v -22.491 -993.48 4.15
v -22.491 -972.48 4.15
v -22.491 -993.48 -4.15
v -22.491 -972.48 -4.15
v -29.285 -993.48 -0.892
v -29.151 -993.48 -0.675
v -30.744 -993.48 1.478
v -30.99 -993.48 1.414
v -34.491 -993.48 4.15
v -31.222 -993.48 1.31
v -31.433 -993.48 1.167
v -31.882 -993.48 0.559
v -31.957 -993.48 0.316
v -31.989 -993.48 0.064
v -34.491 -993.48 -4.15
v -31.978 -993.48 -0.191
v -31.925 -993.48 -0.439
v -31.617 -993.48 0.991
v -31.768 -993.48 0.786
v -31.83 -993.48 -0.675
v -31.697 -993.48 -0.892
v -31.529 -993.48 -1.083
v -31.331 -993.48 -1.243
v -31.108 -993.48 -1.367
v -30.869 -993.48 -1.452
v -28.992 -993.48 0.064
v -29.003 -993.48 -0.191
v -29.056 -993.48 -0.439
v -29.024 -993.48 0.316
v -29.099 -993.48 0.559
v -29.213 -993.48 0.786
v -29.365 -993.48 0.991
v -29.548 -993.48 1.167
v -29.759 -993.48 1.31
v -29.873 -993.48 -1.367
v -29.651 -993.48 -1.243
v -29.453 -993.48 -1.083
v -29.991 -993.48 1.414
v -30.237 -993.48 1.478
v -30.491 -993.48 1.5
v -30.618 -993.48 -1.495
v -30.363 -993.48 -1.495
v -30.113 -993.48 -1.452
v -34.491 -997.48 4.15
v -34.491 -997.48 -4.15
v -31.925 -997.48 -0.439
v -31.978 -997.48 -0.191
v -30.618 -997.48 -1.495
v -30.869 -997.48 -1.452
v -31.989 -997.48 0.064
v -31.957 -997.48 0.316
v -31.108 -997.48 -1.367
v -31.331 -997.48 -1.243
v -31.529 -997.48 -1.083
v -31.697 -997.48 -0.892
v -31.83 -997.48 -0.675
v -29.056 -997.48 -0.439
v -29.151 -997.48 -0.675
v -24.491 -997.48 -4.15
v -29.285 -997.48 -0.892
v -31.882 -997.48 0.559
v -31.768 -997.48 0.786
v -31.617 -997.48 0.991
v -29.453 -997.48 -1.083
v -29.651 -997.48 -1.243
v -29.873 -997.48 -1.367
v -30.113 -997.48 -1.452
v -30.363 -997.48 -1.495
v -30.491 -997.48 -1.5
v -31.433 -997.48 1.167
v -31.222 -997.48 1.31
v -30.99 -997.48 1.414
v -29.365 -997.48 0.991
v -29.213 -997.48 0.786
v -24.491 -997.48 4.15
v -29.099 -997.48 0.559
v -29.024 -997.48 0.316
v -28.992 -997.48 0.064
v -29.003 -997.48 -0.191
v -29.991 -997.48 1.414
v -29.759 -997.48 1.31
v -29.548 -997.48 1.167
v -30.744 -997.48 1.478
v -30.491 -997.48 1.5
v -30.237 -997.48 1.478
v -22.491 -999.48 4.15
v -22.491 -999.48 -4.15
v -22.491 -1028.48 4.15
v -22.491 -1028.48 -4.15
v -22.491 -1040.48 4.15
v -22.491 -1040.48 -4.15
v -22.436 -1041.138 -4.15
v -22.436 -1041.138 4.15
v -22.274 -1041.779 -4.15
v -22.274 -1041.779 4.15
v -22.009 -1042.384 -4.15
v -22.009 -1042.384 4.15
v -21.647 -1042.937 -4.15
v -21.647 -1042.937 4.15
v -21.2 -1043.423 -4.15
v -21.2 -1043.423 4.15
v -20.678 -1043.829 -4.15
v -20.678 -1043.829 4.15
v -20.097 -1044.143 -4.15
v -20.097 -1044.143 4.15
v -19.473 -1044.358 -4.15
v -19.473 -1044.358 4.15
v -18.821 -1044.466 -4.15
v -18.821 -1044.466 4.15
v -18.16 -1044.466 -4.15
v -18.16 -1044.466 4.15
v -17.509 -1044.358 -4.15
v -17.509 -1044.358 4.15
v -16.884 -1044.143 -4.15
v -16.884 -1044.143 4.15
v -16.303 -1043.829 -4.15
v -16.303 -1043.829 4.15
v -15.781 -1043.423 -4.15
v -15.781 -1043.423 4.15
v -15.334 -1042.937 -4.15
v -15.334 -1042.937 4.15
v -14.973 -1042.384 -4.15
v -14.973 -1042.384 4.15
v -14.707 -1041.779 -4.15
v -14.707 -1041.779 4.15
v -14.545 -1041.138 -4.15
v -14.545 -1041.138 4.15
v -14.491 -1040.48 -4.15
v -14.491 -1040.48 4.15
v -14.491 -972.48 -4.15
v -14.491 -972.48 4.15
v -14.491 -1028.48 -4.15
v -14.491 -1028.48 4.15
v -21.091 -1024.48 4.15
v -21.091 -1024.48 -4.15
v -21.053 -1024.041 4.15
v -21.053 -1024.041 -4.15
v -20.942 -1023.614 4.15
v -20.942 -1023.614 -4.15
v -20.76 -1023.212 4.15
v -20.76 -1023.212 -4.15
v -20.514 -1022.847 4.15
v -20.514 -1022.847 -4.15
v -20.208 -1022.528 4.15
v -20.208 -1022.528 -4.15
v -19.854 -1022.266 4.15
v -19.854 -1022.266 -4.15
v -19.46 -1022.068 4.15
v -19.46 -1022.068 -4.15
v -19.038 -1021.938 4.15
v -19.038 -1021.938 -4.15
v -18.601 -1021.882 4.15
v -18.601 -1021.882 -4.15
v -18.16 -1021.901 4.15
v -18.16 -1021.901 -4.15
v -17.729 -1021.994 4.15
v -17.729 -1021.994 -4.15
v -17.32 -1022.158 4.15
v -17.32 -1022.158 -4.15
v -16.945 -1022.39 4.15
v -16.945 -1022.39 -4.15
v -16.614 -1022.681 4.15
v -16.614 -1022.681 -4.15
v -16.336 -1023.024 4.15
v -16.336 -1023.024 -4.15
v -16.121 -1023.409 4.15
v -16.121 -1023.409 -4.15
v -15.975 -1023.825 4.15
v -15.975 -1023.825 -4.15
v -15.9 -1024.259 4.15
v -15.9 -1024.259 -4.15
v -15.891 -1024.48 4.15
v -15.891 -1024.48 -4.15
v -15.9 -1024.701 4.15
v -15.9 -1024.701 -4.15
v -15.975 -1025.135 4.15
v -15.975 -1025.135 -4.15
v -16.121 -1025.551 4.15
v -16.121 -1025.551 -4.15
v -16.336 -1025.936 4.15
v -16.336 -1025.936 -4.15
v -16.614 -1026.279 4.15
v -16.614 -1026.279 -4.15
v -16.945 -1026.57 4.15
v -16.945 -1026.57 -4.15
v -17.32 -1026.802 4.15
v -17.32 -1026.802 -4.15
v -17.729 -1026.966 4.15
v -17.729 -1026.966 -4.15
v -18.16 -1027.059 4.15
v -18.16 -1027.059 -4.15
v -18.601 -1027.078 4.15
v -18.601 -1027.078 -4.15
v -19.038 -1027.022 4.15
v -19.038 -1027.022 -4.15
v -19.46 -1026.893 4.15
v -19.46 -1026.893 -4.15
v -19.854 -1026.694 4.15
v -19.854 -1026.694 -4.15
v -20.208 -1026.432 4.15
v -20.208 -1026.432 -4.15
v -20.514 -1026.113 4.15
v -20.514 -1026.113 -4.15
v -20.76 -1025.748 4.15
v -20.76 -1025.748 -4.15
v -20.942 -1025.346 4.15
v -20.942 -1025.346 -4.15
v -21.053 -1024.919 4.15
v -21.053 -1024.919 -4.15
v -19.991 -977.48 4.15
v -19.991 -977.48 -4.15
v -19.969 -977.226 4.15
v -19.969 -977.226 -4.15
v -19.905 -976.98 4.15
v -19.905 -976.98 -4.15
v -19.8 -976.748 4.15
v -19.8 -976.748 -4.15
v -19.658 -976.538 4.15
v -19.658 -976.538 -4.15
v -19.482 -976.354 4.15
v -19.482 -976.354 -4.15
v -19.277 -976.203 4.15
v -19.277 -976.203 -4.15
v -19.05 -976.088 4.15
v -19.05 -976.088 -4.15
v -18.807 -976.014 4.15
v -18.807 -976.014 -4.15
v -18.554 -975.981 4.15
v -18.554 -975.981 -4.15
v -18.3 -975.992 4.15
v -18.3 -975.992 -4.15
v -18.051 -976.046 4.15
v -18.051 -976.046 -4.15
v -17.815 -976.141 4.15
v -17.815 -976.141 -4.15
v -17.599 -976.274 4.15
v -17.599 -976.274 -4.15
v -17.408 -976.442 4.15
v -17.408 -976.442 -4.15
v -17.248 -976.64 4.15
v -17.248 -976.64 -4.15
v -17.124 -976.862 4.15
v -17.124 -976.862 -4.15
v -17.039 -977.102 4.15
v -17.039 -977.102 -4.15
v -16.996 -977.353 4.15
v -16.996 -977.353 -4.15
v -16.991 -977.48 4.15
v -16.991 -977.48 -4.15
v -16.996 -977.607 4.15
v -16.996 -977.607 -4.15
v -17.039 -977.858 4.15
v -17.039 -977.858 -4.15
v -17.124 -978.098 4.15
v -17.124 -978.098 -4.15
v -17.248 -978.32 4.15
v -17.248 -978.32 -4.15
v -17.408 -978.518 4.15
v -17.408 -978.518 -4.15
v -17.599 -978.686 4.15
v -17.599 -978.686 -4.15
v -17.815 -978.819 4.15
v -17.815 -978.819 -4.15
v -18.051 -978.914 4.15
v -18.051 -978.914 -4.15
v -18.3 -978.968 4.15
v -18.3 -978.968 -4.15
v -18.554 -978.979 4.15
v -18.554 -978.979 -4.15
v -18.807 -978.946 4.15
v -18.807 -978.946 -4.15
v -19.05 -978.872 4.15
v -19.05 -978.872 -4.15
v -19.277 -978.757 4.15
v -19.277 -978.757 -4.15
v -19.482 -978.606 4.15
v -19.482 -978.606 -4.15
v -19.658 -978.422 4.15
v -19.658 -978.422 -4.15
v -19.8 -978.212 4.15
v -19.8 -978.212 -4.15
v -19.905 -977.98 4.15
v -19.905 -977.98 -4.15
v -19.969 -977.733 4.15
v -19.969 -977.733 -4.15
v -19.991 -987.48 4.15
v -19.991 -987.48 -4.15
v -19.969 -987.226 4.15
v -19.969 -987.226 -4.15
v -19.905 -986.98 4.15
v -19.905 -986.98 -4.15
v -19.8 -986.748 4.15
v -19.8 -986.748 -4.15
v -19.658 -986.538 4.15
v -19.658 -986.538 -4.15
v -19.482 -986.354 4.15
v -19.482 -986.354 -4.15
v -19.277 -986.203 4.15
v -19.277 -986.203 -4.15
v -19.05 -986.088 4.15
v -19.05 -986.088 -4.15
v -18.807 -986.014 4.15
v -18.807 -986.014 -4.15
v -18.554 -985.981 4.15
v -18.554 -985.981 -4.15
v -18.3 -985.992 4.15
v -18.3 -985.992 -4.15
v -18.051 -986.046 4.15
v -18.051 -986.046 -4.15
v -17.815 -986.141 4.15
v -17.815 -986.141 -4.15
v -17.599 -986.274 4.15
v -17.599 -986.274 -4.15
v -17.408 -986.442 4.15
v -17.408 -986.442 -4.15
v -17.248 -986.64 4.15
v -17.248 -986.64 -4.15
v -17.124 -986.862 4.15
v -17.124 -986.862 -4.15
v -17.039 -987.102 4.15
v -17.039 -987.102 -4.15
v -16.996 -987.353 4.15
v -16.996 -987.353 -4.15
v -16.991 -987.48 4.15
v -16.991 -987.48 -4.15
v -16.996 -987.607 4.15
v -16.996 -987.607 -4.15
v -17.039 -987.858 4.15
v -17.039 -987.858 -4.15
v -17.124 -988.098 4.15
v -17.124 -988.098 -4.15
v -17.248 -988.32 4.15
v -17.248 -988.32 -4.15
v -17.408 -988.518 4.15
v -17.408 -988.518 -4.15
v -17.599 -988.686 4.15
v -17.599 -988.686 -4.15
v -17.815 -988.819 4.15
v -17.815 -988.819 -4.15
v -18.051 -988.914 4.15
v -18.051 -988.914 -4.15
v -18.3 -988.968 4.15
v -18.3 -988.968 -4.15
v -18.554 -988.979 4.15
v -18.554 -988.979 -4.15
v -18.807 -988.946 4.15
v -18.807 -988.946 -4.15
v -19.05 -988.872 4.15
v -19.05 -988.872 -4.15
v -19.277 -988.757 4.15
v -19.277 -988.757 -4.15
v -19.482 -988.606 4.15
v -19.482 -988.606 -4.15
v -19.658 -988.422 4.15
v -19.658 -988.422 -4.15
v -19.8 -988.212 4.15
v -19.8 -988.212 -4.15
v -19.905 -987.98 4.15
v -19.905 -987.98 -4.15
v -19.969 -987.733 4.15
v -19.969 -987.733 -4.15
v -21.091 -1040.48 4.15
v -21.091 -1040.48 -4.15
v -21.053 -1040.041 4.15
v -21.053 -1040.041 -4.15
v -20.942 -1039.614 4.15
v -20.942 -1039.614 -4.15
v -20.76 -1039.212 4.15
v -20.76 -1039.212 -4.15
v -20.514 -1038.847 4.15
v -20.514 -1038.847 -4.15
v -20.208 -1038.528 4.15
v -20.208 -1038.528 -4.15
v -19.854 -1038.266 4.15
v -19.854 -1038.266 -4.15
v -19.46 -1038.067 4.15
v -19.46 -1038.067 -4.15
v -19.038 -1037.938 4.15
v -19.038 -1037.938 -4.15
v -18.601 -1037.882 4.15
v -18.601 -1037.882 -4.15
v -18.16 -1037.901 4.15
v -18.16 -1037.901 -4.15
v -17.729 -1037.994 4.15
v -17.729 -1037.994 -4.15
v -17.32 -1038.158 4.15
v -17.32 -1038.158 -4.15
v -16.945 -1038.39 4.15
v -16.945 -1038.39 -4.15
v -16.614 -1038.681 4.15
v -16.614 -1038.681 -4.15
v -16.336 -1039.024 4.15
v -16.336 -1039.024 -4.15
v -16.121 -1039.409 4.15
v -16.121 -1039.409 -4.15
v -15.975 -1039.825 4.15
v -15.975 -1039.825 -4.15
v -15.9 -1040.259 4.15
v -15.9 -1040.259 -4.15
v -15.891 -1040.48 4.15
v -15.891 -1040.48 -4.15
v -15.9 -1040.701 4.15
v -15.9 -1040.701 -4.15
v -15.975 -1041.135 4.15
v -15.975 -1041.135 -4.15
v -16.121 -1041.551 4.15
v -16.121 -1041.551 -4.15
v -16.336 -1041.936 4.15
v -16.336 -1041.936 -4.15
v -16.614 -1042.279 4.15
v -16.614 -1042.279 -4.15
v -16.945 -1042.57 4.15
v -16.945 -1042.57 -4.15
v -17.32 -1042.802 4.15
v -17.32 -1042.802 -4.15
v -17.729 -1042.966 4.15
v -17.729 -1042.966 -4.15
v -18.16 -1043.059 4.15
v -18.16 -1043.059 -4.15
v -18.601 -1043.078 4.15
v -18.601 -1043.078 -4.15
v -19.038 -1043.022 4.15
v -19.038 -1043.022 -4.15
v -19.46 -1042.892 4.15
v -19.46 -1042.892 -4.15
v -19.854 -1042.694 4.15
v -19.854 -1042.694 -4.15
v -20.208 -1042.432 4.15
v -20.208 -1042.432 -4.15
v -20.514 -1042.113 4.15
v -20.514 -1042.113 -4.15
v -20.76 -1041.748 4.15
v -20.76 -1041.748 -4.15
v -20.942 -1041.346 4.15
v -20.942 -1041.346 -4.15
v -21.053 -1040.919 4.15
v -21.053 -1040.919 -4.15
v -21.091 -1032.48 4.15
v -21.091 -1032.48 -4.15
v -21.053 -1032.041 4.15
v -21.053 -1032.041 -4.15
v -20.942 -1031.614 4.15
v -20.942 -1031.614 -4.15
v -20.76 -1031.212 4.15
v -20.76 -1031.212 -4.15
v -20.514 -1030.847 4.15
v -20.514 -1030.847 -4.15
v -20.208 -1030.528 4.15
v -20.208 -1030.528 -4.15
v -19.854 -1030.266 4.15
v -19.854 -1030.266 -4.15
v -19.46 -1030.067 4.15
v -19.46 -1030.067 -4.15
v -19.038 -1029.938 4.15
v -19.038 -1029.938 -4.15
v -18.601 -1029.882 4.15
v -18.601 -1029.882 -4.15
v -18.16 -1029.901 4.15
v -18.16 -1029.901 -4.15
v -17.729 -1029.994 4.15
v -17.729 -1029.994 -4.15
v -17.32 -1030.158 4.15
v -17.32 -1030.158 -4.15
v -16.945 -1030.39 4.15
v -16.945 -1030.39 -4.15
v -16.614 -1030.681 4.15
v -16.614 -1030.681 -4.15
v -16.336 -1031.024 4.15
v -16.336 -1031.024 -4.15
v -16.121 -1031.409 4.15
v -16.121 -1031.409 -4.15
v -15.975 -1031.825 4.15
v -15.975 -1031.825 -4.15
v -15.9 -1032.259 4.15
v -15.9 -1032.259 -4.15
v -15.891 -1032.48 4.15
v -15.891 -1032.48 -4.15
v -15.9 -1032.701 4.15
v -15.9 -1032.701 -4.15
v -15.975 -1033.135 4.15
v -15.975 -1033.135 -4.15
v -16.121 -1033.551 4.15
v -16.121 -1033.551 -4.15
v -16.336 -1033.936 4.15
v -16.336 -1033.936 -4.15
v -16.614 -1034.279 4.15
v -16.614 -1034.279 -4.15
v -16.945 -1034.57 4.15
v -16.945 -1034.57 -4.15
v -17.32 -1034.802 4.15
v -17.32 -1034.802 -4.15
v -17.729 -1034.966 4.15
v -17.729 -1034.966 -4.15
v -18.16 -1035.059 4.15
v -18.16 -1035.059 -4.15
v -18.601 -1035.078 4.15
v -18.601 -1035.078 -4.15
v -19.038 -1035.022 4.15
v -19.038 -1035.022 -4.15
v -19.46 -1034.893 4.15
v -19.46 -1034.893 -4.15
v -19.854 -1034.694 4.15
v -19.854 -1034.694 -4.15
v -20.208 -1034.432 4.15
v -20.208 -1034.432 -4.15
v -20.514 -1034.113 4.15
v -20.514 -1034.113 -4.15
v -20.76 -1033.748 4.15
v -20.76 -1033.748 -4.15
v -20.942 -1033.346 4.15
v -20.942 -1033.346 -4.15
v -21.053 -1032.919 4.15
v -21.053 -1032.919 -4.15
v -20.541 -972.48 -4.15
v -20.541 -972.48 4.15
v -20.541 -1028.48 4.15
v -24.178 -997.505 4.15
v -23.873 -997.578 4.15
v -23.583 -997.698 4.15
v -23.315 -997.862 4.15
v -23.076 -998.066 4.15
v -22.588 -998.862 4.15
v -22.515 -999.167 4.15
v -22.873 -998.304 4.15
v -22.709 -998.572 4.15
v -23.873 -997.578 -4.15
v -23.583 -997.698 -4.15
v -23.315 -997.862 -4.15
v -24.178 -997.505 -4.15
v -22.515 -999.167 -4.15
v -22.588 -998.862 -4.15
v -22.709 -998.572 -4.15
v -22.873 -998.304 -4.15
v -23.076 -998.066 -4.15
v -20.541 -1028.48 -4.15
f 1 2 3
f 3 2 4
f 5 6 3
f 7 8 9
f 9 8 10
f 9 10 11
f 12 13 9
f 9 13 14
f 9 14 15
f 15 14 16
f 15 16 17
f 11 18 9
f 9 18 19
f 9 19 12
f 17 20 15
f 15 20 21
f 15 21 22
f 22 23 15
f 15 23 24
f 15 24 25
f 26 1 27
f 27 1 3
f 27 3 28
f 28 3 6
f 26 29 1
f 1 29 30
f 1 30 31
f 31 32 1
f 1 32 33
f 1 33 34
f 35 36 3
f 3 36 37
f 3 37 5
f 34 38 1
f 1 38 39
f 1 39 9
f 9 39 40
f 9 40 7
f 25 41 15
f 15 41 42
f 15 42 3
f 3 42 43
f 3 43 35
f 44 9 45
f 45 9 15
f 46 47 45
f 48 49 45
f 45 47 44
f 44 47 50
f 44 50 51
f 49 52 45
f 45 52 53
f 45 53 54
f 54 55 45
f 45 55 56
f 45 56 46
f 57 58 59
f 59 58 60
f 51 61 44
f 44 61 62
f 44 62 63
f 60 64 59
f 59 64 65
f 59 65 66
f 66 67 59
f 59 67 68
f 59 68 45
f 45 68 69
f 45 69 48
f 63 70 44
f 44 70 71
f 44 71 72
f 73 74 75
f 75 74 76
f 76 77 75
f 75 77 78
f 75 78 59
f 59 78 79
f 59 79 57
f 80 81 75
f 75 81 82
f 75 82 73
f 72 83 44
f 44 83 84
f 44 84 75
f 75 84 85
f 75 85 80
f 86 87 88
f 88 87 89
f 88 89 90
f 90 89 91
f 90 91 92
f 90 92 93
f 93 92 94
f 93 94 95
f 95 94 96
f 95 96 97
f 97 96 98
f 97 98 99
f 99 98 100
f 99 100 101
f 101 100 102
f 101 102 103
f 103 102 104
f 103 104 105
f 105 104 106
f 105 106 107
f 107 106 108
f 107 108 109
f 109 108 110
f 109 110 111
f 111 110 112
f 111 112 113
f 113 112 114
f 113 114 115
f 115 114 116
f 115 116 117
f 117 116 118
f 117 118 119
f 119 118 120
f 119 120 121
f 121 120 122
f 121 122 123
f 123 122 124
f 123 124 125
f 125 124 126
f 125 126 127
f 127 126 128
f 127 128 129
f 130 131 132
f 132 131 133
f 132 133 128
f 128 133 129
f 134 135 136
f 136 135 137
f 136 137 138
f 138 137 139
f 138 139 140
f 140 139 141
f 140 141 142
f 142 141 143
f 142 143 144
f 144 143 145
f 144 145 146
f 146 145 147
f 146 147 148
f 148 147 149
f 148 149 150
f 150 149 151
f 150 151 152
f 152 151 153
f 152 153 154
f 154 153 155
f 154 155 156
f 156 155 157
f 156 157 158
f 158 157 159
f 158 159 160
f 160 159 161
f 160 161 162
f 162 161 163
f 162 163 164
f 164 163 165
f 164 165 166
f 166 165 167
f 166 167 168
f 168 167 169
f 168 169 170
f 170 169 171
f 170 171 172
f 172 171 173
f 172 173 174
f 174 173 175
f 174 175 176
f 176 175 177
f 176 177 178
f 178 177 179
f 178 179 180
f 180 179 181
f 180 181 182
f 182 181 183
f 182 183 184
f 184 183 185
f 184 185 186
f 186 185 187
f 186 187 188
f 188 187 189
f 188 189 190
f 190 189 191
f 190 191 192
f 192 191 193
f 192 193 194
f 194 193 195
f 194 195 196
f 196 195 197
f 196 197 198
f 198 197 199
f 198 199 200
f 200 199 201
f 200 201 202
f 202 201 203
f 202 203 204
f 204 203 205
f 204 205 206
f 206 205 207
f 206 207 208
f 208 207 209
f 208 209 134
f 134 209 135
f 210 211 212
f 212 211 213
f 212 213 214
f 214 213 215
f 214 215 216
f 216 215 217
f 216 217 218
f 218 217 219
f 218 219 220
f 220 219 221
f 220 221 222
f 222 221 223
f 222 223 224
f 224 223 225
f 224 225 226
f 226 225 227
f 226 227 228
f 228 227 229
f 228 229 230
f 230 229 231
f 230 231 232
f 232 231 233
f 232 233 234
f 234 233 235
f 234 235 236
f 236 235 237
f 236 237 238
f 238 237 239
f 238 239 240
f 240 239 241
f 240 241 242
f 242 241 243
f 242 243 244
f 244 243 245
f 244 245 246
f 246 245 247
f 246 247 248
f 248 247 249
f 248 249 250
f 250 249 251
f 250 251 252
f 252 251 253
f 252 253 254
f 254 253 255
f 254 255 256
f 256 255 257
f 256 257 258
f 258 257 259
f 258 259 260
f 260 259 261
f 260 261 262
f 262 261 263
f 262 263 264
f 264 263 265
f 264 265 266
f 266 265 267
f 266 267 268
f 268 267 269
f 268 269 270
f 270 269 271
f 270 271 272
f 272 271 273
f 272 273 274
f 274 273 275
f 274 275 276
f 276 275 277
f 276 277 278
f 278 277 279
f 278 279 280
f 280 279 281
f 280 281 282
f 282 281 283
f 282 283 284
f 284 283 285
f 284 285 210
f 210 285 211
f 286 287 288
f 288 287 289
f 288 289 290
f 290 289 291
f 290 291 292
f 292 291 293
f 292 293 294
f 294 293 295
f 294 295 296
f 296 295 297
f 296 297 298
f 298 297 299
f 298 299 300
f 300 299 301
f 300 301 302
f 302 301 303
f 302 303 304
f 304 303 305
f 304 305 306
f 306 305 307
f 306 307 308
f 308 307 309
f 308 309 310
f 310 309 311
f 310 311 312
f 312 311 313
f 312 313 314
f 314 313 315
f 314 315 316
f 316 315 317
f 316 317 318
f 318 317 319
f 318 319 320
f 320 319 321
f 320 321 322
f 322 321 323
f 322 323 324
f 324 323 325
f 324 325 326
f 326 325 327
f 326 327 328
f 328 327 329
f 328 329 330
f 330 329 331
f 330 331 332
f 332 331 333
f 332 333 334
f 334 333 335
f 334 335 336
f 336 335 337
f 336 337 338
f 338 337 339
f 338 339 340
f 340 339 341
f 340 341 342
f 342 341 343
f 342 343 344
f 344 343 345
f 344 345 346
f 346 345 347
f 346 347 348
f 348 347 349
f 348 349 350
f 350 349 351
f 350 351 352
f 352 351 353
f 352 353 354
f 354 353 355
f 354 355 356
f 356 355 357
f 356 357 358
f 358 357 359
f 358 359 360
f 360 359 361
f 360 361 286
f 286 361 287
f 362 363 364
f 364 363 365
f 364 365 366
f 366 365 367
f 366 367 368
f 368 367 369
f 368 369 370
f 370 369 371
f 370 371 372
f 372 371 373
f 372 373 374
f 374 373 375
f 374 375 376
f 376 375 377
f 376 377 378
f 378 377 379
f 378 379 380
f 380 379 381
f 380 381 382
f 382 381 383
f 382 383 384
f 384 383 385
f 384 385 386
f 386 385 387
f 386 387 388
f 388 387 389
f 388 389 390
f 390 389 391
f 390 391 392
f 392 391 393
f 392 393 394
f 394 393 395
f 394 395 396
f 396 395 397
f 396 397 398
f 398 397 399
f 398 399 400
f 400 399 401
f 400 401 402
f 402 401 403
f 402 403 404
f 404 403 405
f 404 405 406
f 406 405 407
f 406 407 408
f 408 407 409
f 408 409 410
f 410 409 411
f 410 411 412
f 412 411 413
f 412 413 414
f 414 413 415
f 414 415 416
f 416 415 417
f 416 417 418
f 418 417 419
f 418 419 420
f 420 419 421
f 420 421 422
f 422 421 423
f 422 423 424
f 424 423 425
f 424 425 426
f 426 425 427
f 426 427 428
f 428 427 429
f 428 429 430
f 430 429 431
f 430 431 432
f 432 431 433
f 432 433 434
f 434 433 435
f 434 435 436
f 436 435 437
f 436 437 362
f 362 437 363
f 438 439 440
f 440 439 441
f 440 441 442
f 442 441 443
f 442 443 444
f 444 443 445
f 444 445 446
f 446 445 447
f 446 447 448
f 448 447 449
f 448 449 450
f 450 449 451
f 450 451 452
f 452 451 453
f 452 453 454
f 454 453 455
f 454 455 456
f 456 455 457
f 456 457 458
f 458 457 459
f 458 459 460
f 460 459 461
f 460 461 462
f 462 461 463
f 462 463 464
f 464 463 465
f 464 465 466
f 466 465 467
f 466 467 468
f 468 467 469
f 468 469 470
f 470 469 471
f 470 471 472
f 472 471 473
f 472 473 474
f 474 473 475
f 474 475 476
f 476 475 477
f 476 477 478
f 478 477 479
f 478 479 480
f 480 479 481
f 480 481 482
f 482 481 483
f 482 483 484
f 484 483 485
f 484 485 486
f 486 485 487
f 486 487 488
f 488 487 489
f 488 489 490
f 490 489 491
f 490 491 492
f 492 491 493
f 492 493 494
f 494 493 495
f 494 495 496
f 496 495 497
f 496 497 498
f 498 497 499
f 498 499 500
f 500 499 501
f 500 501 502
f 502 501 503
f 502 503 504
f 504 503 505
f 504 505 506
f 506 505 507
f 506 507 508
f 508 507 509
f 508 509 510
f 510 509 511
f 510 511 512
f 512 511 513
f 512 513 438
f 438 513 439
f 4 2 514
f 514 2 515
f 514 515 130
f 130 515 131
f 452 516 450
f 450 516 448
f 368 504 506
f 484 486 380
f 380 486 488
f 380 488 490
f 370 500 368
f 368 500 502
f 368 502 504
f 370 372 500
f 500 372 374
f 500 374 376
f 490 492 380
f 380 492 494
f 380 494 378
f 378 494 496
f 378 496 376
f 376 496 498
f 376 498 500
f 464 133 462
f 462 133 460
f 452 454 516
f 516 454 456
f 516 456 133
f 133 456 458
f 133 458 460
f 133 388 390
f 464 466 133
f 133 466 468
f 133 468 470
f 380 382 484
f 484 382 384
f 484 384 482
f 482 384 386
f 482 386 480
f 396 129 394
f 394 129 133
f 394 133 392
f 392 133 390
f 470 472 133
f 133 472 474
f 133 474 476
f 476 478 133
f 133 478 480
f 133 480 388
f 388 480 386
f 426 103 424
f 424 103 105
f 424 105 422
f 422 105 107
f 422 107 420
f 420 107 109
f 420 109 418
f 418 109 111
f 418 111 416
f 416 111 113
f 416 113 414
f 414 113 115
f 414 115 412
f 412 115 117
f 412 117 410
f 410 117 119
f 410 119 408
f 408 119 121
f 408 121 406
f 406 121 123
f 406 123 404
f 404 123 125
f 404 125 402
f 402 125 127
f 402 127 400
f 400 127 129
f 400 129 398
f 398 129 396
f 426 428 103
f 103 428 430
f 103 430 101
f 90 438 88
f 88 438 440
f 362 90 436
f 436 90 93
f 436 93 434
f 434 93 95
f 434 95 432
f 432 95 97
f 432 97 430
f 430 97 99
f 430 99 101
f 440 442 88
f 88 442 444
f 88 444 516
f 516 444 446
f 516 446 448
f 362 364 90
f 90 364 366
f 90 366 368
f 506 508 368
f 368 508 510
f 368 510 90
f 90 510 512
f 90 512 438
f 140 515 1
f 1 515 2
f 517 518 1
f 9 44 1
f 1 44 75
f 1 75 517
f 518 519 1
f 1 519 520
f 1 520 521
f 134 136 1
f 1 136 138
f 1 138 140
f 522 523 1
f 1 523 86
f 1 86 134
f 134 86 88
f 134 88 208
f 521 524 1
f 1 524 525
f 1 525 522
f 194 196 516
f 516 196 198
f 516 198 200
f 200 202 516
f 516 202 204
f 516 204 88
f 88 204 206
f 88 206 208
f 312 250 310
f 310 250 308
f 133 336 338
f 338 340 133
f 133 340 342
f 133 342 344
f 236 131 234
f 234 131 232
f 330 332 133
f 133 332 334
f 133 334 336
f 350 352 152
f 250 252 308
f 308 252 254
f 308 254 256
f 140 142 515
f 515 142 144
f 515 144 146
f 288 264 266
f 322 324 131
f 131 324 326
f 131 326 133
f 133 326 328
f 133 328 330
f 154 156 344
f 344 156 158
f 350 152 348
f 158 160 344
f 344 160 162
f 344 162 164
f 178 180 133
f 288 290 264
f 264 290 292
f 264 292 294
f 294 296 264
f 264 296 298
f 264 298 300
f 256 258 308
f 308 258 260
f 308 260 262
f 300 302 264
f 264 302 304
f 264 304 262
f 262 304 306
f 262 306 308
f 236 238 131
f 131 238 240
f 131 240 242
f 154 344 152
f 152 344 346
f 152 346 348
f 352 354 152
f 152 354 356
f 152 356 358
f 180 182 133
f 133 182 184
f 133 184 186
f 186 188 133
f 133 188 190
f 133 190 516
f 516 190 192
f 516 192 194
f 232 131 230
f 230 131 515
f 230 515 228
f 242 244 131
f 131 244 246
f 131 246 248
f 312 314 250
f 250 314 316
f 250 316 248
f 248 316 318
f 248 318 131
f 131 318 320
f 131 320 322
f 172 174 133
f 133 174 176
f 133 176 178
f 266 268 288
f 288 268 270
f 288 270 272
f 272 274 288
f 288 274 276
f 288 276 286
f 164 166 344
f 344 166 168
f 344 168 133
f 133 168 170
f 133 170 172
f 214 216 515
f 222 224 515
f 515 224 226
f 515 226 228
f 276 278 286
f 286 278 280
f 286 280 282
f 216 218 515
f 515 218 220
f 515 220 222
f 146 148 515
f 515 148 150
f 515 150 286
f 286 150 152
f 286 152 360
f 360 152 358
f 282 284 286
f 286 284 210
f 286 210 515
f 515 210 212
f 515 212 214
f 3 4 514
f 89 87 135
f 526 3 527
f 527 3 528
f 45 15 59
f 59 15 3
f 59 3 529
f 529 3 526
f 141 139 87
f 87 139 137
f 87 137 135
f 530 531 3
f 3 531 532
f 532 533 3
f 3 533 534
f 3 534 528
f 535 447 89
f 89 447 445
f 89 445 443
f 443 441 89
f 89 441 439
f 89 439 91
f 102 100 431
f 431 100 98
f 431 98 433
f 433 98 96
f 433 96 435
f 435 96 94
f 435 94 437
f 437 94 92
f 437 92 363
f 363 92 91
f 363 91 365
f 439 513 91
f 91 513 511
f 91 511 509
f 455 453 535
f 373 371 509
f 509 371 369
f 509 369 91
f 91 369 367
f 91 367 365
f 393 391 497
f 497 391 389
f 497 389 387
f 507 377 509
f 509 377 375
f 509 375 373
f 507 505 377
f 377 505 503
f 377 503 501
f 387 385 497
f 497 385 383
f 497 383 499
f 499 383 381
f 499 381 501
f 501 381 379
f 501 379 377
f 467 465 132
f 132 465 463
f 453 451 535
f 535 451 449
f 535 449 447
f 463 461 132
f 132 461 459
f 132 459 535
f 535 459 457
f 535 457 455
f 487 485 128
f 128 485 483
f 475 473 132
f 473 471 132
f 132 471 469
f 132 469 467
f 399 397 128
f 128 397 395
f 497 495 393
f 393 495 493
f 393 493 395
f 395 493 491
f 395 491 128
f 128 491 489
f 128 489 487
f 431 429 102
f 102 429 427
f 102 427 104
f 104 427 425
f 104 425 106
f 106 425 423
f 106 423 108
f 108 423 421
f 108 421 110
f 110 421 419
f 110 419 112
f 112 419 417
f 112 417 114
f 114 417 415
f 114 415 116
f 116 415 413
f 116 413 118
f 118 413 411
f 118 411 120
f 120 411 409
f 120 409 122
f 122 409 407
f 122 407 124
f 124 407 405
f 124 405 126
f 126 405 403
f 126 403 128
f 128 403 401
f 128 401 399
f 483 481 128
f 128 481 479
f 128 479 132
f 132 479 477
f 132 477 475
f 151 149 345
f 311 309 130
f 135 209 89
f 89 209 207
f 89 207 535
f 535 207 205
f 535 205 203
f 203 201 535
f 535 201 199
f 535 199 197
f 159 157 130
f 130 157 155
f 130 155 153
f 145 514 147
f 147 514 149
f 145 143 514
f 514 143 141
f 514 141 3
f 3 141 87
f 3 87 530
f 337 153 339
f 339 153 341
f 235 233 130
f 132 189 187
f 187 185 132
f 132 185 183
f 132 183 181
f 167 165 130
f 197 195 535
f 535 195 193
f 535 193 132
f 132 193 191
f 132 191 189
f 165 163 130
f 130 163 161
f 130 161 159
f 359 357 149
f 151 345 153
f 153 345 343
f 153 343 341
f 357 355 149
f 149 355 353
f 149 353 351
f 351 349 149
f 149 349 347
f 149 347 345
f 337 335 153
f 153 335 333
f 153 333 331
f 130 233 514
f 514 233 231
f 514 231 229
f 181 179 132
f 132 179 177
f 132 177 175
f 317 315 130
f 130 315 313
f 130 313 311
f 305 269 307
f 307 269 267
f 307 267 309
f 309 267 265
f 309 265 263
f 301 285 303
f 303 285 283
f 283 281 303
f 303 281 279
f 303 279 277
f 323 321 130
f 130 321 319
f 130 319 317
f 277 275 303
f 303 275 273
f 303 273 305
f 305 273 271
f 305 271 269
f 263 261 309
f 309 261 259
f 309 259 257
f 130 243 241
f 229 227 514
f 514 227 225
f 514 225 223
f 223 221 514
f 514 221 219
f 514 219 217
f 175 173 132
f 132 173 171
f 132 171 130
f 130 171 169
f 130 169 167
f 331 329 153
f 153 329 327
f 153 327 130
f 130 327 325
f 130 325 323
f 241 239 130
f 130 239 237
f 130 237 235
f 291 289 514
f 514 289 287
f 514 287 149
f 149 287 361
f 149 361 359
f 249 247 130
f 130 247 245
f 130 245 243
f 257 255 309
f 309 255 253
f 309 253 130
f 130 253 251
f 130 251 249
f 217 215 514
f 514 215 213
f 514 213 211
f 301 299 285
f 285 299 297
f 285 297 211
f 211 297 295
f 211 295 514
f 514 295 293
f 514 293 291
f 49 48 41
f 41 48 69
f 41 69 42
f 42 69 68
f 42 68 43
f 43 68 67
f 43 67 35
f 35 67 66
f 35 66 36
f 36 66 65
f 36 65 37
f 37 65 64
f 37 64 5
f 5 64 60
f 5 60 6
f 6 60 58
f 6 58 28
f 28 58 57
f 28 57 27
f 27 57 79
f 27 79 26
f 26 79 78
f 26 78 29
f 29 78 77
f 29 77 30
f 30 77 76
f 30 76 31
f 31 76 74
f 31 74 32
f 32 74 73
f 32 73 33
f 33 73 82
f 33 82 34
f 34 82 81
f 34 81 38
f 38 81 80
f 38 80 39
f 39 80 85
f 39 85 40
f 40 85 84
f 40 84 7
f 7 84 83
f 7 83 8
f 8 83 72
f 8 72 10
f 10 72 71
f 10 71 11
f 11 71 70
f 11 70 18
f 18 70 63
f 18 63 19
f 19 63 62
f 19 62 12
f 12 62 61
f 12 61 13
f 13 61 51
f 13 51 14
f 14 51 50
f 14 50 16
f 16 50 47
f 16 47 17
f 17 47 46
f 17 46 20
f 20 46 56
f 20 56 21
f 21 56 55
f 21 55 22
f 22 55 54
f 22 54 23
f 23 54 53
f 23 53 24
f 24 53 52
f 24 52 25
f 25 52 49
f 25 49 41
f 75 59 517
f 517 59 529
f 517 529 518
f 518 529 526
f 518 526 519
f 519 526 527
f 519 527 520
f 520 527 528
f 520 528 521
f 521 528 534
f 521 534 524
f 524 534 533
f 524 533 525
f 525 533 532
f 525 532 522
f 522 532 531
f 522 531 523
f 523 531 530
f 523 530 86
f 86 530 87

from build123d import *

# Parameters (mm, degrees)
CROQUIS1_R              = 2.6
CROQUIS1_R_2            = 1.5
CROQUIS1_W              = 12
CROQUIS1_H              = 4
SALIENTE_EXTRUIR1_DEPTH = 4.15
CROQUIS2_R              = 1.5
CORTAR_EXTRUIR1_DEPTH   = 10
REDONDEO2_R             = 2


with BuildPart() as part:
    # Croquis1 → Saliente-Extruir1 (new, symmetric)
    # profile 1 of 2: a face of its own
    with BuildSketch(Plane.XY):
        with BuildLine():
            Line((-14.490607503, -1040.48), (-14.490607503, -1037.604369418))
            Line((-14.490607503, -1037.604369418), (-14.490607503, -972.48))
            Line((-14.490607503, -972.48), (-22.490607503, -972.48))
            Line((-22.490607503, -972.48), (-22.490607503, -993.48))
            Line((-22.490607503, -993.48), (-22.490607503, -997.48))
            Line((-22.490607503, -997.48), (-22.490607503, -1024.48))
            Line((-22.490607503, -1024.48), (-22.490607503, -1040.48))
            ThreePointArc((-22.490607503, -1040.48), (-18.490607503, -1044.48), (-14.490607503, -1040.48))
        make_face()
        with Locations(Location((-18.490607503, -1040.48, 0), (0, 0, 180))):
            Circle(CROQUIS1_R, mode=Mode.SUBTRACT)
        with Locations(Location((-18.490607503, -1032.48, 0), (0, 0, 180))):
            Circle(CROQUIS1_R, mode=Mode.SUBTRACT)
        with Locations(Location((-18.490607503, -1024.48, 0), (0, 0, 180))):
            Circle(CROQUIS1_R, mode=Mode.SUBTRACT)
        with Locations(Location((-18.490607503, -987.48, 0), (0, 0, 180))):
            Circle(CROQUIS1_R_2, mode=Mode.SUBTRACT)
        with Locations(Location((-18.490607503, -977.48, 0), (0, 0, 180))):
            Circle(CROQUIS1_R_2, mode=Mode.SUBTRACT)
    # profile 2 of 2: a face of its own
    with BuildSketch(Plane.XY):
        with Locations((-28.490607503, -995.48)):
            Rectangle(CROQUIS1_W, CROQUIS1_H)
    extrude(amount=SALIENTE_EXTRUIR1_DEPTH, both=True)

    # Croquis2 → Cortar-Extruir1 (cut)
    with BuildSketch(Plane(origin=(0, -993.48, 0), x_dir=(1, 0, 0), z_dir=(0, 1, 0))):
        with Locations(Location((-30.490607503, 0, 0), (0, 0, 270))):
            Circle(CROQUIS2_R)
    extrude(amount=-CORTAR_EXTRUIR1_DEPTH, mode=Mode.SUBTRACT)

    # Redondeo2
    redondeo2_edges = [part.edges().sort_by_distance(p)[0] for p in [
        (-22.490607503, -997.48, 0),
    ]]
    fillet(redondeo2_edges, radius=REDONDEO2_R)


solid = part.part
